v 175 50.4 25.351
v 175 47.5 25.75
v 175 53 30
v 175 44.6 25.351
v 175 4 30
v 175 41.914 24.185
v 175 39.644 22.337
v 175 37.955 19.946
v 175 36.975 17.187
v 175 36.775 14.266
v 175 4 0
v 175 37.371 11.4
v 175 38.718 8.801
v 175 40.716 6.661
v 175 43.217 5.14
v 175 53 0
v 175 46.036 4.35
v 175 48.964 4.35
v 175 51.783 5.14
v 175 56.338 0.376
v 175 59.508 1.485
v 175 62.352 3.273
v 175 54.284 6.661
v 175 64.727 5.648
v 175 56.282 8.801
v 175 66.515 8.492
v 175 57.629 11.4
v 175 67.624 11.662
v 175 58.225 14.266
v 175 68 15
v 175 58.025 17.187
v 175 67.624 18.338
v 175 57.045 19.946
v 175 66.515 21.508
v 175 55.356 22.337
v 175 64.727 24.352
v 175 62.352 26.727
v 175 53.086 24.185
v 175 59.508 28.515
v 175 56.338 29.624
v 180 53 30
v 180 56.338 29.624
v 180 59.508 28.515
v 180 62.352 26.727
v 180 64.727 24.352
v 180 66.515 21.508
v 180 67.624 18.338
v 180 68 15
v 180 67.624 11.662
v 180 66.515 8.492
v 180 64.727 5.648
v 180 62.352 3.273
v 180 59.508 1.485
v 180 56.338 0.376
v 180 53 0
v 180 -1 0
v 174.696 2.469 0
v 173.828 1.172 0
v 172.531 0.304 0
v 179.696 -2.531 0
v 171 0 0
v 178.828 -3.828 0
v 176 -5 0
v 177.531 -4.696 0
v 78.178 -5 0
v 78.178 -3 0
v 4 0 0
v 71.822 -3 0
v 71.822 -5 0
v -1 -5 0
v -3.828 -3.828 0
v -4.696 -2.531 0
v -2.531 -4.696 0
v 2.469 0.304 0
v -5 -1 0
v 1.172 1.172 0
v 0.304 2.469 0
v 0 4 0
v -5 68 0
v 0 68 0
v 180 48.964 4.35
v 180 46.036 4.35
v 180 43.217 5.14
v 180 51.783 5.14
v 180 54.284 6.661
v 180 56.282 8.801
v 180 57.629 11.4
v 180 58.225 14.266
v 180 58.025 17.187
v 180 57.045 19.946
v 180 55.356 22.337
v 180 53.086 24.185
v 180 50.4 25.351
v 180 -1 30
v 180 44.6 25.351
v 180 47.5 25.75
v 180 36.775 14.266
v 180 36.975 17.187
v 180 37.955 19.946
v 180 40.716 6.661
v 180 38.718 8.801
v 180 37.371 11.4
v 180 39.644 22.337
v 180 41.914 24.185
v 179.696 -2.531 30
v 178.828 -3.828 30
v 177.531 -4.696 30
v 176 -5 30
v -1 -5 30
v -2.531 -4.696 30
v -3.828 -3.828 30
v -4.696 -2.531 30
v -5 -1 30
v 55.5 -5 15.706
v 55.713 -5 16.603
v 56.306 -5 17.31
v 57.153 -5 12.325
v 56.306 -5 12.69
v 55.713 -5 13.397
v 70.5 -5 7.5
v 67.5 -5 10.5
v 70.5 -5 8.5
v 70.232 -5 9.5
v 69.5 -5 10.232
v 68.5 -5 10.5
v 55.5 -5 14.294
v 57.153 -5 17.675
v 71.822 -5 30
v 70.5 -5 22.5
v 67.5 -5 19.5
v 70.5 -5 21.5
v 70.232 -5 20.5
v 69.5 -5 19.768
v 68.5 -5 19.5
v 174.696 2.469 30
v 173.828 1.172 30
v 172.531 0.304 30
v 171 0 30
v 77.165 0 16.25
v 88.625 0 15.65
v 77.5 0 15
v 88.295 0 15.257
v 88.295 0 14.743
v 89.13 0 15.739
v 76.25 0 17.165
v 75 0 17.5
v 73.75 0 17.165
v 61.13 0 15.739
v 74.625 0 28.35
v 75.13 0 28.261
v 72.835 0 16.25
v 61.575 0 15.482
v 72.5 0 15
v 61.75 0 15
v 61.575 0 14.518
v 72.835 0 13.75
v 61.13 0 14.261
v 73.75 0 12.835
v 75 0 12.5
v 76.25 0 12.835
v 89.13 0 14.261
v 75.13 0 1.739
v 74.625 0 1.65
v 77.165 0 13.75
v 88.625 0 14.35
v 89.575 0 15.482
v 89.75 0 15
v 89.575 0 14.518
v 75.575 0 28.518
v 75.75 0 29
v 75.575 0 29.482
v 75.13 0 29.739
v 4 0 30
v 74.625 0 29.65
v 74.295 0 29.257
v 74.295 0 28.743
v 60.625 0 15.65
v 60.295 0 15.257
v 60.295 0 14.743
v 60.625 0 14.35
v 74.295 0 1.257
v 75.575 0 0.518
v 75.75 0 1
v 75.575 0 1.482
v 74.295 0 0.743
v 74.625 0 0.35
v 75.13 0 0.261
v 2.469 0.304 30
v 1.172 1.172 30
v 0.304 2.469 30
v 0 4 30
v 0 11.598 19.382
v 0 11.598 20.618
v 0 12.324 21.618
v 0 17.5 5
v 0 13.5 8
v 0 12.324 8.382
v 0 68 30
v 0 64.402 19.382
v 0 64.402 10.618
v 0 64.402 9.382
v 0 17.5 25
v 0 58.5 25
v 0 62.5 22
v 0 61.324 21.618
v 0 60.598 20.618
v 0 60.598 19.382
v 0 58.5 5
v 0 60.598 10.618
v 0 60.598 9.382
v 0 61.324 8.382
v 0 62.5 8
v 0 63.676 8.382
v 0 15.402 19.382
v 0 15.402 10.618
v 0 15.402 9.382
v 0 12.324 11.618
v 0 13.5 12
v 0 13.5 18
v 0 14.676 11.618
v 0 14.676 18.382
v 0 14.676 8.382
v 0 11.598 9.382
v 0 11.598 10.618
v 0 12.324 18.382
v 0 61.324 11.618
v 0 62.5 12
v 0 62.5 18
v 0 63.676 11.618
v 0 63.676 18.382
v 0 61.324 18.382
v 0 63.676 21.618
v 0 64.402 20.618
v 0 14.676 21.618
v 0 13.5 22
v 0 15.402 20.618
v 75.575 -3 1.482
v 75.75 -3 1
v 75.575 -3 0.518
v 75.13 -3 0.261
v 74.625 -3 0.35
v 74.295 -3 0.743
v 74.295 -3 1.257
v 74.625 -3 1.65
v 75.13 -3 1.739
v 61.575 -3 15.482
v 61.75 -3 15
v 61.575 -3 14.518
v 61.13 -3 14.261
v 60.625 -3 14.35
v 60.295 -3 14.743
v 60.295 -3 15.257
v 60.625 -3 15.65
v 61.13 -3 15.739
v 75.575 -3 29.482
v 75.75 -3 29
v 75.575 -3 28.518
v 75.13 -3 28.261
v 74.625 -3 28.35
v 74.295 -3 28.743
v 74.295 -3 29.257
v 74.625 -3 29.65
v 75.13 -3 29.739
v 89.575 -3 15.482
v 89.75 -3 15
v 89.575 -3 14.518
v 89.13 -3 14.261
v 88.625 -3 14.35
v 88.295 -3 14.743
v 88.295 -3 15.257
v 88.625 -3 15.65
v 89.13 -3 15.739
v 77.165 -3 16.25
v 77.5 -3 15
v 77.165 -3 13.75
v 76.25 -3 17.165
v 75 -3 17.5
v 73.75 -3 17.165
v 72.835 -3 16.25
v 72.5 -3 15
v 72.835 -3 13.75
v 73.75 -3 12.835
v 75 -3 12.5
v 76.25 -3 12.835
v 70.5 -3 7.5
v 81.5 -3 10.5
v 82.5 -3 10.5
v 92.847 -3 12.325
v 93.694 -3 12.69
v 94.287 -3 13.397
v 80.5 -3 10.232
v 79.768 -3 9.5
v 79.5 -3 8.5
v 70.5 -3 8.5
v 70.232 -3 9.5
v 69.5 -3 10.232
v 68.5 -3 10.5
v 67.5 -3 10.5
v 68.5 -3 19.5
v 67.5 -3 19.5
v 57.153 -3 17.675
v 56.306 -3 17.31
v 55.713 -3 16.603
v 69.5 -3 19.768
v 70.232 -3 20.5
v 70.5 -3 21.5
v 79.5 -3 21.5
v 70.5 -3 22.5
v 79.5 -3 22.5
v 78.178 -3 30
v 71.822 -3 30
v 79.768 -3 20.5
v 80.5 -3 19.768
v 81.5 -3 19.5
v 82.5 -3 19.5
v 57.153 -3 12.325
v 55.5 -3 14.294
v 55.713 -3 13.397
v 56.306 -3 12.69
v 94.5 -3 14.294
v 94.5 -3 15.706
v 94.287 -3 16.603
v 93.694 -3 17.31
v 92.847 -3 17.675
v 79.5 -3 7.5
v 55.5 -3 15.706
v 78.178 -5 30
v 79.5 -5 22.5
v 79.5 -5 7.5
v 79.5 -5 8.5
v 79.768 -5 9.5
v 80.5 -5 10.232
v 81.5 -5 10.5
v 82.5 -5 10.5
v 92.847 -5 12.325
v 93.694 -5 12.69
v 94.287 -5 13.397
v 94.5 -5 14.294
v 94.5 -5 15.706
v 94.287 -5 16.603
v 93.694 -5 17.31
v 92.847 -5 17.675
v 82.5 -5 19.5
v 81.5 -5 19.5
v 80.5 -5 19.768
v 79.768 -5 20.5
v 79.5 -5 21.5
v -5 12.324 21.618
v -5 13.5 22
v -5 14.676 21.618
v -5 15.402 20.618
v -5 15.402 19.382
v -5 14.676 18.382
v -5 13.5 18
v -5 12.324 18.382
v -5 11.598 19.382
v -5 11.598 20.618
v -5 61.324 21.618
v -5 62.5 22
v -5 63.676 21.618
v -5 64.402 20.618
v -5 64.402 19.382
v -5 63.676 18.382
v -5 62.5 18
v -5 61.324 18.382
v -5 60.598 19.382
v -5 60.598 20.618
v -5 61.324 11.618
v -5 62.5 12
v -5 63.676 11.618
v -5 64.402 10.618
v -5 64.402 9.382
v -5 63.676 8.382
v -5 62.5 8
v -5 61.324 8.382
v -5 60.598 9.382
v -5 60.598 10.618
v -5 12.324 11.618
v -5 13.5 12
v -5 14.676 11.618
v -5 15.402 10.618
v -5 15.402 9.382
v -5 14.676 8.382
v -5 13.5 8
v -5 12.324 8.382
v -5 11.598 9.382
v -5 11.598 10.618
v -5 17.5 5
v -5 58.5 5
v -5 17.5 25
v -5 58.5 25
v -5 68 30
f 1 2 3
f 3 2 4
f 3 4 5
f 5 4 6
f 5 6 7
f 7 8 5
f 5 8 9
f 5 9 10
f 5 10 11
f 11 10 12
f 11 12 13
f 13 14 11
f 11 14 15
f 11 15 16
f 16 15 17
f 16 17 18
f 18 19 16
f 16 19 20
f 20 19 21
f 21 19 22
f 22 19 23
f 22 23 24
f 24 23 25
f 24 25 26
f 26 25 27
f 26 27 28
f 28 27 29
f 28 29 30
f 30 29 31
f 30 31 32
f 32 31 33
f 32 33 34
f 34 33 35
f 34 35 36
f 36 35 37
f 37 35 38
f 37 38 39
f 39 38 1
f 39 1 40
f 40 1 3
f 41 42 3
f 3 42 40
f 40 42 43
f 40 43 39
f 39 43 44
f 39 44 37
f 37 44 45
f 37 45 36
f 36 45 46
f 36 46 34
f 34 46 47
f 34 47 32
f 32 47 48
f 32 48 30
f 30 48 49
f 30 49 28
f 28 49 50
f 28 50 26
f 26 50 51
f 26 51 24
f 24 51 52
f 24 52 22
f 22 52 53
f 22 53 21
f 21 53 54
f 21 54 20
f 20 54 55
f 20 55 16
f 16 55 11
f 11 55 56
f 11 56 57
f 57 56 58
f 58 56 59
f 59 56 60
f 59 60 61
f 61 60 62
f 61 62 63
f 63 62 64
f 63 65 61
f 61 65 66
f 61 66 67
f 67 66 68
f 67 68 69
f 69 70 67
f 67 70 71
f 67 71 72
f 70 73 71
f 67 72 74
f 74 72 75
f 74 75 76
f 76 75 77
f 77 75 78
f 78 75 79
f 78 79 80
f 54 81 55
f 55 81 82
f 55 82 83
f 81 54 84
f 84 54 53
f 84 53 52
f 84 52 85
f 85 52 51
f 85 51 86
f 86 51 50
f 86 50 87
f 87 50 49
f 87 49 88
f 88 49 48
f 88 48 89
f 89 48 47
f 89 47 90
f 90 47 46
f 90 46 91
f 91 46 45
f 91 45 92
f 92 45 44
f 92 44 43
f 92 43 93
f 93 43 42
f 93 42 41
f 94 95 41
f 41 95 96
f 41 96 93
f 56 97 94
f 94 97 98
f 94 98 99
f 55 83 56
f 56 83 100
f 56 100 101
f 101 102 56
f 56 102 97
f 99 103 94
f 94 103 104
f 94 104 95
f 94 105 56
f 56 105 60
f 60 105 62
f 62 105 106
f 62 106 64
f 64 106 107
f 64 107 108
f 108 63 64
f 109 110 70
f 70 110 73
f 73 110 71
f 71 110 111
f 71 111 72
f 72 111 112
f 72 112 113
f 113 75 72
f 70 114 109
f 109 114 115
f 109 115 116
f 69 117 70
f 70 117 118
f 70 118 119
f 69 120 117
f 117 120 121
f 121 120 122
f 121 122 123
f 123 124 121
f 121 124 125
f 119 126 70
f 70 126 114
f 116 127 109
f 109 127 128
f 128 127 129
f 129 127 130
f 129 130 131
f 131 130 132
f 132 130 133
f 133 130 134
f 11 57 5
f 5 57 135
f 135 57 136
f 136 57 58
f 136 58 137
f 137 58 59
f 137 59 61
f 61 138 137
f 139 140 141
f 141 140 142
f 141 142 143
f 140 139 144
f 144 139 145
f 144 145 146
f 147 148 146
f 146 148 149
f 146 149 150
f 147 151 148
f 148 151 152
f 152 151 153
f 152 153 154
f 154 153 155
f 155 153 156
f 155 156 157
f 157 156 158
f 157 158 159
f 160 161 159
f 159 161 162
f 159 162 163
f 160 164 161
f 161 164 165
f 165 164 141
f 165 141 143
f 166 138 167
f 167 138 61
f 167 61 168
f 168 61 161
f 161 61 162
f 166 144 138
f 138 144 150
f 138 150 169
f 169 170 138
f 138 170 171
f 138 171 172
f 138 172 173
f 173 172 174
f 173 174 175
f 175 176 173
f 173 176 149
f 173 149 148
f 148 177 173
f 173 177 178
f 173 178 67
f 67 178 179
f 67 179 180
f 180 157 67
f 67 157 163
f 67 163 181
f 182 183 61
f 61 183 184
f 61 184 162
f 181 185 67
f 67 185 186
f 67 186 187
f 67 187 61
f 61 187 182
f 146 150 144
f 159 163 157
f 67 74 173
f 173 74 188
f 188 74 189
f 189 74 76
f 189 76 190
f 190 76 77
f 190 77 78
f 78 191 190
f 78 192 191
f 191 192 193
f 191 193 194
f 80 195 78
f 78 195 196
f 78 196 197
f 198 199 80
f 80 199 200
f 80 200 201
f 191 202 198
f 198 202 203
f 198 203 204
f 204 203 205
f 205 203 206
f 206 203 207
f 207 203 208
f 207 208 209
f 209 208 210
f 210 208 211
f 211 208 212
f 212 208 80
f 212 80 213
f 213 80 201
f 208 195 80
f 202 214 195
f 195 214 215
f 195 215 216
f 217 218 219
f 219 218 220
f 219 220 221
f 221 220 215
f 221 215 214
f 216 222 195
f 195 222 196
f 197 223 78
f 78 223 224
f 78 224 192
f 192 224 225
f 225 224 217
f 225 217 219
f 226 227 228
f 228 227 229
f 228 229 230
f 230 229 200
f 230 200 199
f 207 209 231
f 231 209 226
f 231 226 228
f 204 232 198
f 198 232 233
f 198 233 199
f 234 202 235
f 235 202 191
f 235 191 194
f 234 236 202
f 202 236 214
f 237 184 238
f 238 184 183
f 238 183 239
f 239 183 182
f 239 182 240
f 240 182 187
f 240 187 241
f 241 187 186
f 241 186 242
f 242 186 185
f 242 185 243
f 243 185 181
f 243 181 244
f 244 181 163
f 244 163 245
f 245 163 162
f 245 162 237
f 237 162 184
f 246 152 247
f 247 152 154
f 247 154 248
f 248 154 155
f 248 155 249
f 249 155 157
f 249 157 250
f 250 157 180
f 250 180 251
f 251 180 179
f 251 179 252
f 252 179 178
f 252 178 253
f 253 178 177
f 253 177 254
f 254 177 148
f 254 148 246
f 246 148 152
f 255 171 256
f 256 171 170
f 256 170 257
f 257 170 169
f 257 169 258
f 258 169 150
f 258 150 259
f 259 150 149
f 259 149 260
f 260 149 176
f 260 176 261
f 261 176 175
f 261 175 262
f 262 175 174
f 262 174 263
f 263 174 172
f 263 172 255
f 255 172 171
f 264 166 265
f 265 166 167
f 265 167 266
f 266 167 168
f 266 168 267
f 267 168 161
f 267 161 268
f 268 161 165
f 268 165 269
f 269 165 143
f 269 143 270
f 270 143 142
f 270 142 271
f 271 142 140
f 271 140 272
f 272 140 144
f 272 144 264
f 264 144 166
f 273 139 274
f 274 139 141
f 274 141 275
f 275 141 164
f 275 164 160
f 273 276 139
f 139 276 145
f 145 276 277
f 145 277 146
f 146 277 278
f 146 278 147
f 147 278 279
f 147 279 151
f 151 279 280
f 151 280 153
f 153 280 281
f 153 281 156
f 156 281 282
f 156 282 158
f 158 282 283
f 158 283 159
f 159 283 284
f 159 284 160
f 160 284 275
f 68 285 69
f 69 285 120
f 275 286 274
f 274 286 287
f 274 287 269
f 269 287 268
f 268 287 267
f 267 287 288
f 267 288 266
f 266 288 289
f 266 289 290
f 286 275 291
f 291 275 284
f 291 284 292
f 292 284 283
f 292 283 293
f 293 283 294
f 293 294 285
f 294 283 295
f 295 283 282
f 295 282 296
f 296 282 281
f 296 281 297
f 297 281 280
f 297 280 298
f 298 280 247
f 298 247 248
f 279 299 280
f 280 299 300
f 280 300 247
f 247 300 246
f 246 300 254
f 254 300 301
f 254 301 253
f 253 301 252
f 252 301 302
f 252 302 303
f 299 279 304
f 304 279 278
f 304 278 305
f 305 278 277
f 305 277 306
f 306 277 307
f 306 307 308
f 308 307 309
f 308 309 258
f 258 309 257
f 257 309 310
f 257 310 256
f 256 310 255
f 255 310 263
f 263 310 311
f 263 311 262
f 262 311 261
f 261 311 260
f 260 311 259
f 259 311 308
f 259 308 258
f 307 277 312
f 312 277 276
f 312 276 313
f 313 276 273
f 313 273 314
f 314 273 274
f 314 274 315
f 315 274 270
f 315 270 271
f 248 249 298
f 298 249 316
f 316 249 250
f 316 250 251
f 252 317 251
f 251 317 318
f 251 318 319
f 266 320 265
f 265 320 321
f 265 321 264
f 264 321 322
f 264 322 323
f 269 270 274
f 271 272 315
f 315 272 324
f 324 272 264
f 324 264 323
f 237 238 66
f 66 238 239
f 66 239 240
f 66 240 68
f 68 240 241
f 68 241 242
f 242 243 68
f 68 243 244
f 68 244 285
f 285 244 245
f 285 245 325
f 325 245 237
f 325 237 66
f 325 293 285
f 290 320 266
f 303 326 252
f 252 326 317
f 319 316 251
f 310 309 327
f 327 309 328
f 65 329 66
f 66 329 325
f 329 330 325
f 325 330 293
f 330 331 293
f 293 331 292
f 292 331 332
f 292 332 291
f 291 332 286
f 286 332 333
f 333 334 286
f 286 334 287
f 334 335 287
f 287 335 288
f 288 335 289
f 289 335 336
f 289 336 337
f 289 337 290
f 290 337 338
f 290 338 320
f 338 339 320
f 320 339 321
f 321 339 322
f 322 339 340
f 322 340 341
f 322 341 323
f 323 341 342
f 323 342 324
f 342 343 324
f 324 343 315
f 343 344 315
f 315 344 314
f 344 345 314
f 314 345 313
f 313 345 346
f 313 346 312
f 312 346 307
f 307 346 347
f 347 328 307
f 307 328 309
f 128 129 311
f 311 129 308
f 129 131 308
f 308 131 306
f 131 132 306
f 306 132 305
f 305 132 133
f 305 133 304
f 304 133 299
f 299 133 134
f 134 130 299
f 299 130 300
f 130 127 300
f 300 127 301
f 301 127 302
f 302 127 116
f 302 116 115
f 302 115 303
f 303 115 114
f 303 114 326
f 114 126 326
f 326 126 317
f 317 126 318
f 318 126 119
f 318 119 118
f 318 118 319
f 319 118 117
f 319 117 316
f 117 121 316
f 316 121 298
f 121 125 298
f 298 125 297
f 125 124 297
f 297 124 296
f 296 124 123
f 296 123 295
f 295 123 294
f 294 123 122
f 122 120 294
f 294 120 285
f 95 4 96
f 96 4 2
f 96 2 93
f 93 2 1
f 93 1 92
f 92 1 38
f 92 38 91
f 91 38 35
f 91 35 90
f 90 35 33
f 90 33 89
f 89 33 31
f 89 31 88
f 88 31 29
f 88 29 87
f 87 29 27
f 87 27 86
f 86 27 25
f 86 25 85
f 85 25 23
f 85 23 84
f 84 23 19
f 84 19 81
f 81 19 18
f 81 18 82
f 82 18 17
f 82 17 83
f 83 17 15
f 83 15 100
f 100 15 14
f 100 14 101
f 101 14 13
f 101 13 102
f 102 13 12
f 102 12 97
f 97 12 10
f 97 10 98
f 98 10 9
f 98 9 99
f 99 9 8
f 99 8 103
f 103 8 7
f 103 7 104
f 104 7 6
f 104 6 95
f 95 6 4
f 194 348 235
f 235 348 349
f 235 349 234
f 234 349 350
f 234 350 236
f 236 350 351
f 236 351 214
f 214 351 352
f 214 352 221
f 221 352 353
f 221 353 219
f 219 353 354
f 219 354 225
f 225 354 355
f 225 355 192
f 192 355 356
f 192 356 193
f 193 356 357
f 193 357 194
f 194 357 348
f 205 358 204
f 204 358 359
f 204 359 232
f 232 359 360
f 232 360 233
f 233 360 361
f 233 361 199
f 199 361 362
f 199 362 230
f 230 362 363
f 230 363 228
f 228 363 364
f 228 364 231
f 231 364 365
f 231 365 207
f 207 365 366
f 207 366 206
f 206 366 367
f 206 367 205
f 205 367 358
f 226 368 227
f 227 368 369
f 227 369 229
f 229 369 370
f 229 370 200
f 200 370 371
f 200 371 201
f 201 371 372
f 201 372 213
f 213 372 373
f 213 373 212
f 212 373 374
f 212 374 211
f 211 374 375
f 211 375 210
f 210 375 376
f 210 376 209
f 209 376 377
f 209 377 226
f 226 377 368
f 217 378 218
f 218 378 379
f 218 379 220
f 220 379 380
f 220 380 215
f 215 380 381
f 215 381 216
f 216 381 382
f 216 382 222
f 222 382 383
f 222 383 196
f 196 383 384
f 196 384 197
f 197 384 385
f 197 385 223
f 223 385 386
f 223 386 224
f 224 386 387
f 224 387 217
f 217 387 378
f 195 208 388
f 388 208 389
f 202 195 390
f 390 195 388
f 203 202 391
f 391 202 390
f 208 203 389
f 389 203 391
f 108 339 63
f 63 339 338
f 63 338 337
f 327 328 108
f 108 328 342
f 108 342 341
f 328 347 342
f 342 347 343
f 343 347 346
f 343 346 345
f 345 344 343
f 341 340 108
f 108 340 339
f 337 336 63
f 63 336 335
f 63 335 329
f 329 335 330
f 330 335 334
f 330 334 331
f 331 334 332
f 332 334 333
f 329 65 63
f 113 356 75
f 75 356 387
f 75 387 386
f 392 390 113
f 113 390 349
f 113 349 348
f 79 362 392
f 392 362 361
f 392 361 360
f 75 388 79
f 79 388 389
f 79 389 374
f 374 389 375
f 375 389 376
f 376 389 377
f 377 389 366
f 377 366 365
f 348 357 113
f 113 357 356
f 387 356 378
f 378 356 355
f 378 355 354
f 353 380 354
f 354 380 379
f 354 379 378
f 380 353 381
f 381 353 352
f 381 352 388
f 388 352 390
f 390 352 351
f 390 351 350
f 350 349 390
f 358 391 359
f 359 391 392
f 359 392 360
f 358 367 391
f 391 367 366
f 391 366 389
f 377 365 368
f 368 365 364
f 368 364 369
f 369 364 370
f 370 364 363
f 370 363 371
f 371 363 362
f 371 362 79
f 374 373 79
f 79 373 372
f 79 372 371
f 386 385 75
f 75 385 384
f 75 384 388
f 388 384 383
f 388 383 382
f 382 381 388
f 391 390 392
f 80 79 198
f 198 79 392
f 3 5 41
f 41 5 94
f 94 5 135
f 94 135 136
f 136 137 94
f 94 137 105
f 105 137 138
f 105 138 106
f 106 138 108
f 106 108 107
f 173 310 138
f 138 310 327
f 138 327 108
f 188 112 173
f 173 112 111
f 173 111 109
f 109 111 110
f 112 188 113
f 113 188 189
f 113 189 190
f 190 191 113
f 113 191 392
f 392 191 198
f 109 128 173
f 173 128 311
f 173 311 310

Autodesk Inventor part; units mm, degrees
ref_plane "YZ Plane" through (0, 0, 0) normal (1, 0, 0) x (0, 1, 0)
ref_plane "XZ Plane" through (0, 0, 0) normal (0, 1, 0) x (-1, 0, 0)
ref_plane "XY Plane" through (0, 0, 0) normal (0, 0, 1) x (1, 0, 0)
sketch "Sketch1" plane through (0, 0, 0) normal (0, 0, 1) x (1, 0, 0)
  line L0 (0, 0) -> (175, 0)
  line L1 (0, 0) -> (0, 68)
  line L2 (0, 68) -> (-5, 68)
  line L3 (-5, 68) -> (-5, -5)
  line L4 (-5, -5) -> (180, -5)
  line L5 (180, -5) -> (180, 68)
  line L6 (180, 68) -> (175, 68)
  line L7 (175, 68) -> (175, 0)
  dimension "d0" = 175
  dimension "d1" = 68
  dimension "d2" = 5
  dimension "d3" = 73
  dimension "d4" = 185
  dimension "d5" = 73
  dimension "d6" = 5
extrude "Outline" add sketch "Sketch1" along normal blind 30
sketch "Sketch2" plane through (-5, -5, 0) normal (-1, 0, 0) x (0, 0, 1)
  line L0 (0, 73) -> (30, 73) construction
  line L1 (15, 73) -> (15, 43) construction
  line L2 (5, 22.5) -> (25, 22.5)
  line L3 (25, 22.5) -> (25, 63.5)
  line L4 (25, 63.5) -> (5, 63.5)
  line L5 (5, 63.5) -> (5, 22.5)
  line L6 (5, 22.5) -> (25, 63.5) construction
  line L7 (25, 22.5) -> (5, 63.5) construction
  line L8 (5, 63.5) -> (5, 67.5) construction
  line L9 (5, 67.5) -> (10, 67.5) construction
  line L10 (25, 63.5) -> (25, 67.5) construction
  line L11 (25, 67.5) -> (20, 67.5) construction
  line L12 (5, 22.5) -> (5, 18.5) construction
  line L13 (5, 18.5) -> (10, 18.5) construction
  line L14 (25, 22.5) -> (25, 18.5) construction
  line L15 (25, 18.5) -> (20, 18.5) construction
  circle A0 centre (10, 67.5) radius 2
  circle A1 centre (20, 67.5) radius 2
  circle A2 centre (10, 18.5) radius 2
  circle A3 centre (20, 18.5) radius 2
  point P0 (0, 5)
  dimension "d9" = 30
  dimension "d10" = 20
  dimension "d11" = 41
  dimension "d12" = 4
  dimension "d13" = 5
  dimension "d14" = 4
  dimension "d15" = 5
  dimension "d16" = 4
  dimension "d17" = 5
  dimension "d18" = 4
  dimension "d19" = 5
  dimension "d20" = 4
  dimension "d21" = 4
  dimension "d22" = 4
  dimension "d23" = 4
extrude "Servo Mount" cut sketch "Sketch2" against normal blind 10
sketch "Sketch3" plane through (175, 0, 0) normal (-1, 0, 0) x (0, 0, 1)
  line L0 (5, 58.5) -> (25, 58.5) construction
  line L1 (15, 58.5) -> (15, 47.5) construction
  circle A0 centre (15, 47.5) radius 10.75
  point P0 (0, 0)
  dimension "d26" = 11
  dimension "d27" = 21.5
extrude "Idler Mount" cut sketch "Sketch3" against normal blind 14.5
sketch "Sketch4" plane through (-5, -5, 0) normal (0, -1, 0) x (1, 0, 0)
  line L0 (0, 25) -> (0, 5) construction
  line L1 (99.5, 14.2941) -> (99.5, 15.7059)
  line L2 (60.5, 15.7059) -> (60.5, 14.2941)
  line L3 (79.2941, 34.5) -> (80.7059, 34.5)
  line L4 (80.7059, -4.5) -> (79.2941, -4.5)
  line L5 (84.5, 22.5) -> (84.5, 21.5)
  line L6 (84.5, 8.5) -> (84.5, 7.5)
  line L7 (75.5, 7.5) -> (75.5, 8.5)
  line L8 (75.5, 21.5) -> (75.5, 22.5)
  line L9 (72.5, 10.5) -> (73.5, 10.5)
  line L10 (86.5, 10.5) -> (87.5, 10.5)
  line L11 (87.5, 19.5) -> (86.5, 19.5)
  line L12 (73.5, 19.5) -> (72.5, 19.5)
  arc A0 (73.5, 19.5) -> (75.5, 21.5) centre (73.5, 21.5) ccw
  arc A1 (84.5, 21.5) -> (86.5, 19.5) centre (86.5, 21.5) ccw
  arc A2 (86.5, 10.5) -> (84.5, 8.5) centre (86.5, 8.5) ccw
  arc A3 (75.5, 8.5) -> (73.5, 10.5) centre (73.5, 8.5) ccw
  line L13 (84.5, 22.5) -> (82.6755, 32.8473)
  line L14 (75.5, 22.5) -> (77.3245, 32.8473)
  line L15 (87.5, 10.5) -> (97.8473, 12.3245)
  line L16 (87.5, 19.5) -> (97.8473, 17.6755)
  line L17 (72.5, 19.5) -> (62.1527, 17.6755)
  line L18 (72.5, 10.5) -> (62.1527, 12.3245)
  line L19 (75.5, 7.5) -> (77.3245, -2.8473)
  line L20 (84.5, 7.5) -> (82.6755, -2.8473)
  arc A4 (62.1527, 17.6755) -> (60.5, 15.7059) centre (62.5, 15.7059) ccw
  arc A5 (60.5, 14.2941) -> (62.1527, 12.3245) centre (62.5, 14.2941) ccw
  arc A6 (79.2941, 34.5) -> (77.3245, 32.8473) centre (79.2941, 32.5) ccw
  arc A7 (82.6755, 32.8473) -> (80.7059, 34.5) centre (80.7059, 32.5) ccw
  arc A8 (99.5, 15.7059) -> (97.8473, 17.6755) centre (97.5, 15.7059) ccw
  arc A9 (97.8473, 12.3245) -> (99.5, 14.2941) centre (97.5, 14.2941) ccw
  arc A10 (77.3245, -2.8473) -> (79.2941, -4.5) centre (79.2941, -2.5) ccw
  arc A11 (80.7059, -4.5) -> (82.6755, -2.8473) centre (80.7059, -2.5) ccw
  line L21 (80, 15) -> (66, 15) construction
  line L22 (80, 15) -> (80, 29) construction
  line L23 (80, 15) -> (94, 15) construction
  line L24 (80, 15) -> (80, 1) construction
  circle A12 centre (80, 29) radius 0.75
  circle A13 centre (66, 15) radius 0.75
  circle A14 centre (94, 15) radius 0.75
  circle A15 centre (80, 1) radius 0.75
  circle A16 centre (80, 15) radius 2.5
  point P0 (5, 0)
  dimension "d35" = 2
  dimension "d37" = 10
  dimension "d39" = 10
  dimension "d41" = 10
  dimension "d43" = 10
  dimension "d45" = 10
  dimension "d47" = 10
  dimension "d49" = 10
  dimension "d51" = 10
  dimension "d52" = 2
  dimension "d53" = 2
  dimension "d54" = 80
  dimension "d55" = 6.5
  dimension "d56" = 6.5
  dimension "d57" = 14
  dimension "d58" = 14
  dimension "d59" = 14
  dimension "d60" = 14
  dimension "d61" = 1.5
  dimension "d62" = 1.5
  dimension "d63" = 1.5
  dimension "d64" = 1.5
  dimension "d70" = 5
extrude "Bottom Servo indent" cut sketch "Sketch4" against normal blind 2 contours A9 L15 L10 A2 L6 L20 A11 L4 A10 L19 L7 A3 L9 L18 A5 L2 A4 L17 L12 A0 L8 L14 A6 L3 A7 L13 L5 A1 L11 L16 A8 L1 | A16
extrude "Bottom Servo Mounting Holse" cut sketch "Sketch4" against normal blind 22 contours A12 | A13 | A14 | A15 | A16
fillet "Strengthening Fillet" radius 4 4 edges at (0, 0, 15) (175, 0, 15) (-5, -5, 15) (180, -5, 15)
fillet "Rounded Idler Post" radius 15 2 edges at (177.5, 68, 0) (177.5, 68, 30)
equation "\"d3\" = d1 + d2"
equation "\"d4\" = d0 + 2 * d2"
equation "\"d5\" = d3"
equation "\"d6\" = d2"
equation "\"d14\" = d12"
equation "\"d15\" = d13"
equation "\"d16\" = d12"
equation "\"d17\" = d13"
equation "\"d18\" = d12"
equation "\"d19\" = d13"
equation "\"d39\" = d37"
equation "\"d41\" = d37"
equation "\"d43\" = d37"
equation "\"d45\" = d37"
equation "\"d47\" = d37"
equation "\"d49\" = d37"
equation "\"d51\" = d37"
equation "\"d58\" = d57"
equation "\"d59\" = d57"
equation "\"d60\" = d57"
equation "\"d62\" = d61"
equation "\"d63\" = d61"
equation "\"d64\" = d61"
properties part number "outerGantry" material "PET Plastic"
